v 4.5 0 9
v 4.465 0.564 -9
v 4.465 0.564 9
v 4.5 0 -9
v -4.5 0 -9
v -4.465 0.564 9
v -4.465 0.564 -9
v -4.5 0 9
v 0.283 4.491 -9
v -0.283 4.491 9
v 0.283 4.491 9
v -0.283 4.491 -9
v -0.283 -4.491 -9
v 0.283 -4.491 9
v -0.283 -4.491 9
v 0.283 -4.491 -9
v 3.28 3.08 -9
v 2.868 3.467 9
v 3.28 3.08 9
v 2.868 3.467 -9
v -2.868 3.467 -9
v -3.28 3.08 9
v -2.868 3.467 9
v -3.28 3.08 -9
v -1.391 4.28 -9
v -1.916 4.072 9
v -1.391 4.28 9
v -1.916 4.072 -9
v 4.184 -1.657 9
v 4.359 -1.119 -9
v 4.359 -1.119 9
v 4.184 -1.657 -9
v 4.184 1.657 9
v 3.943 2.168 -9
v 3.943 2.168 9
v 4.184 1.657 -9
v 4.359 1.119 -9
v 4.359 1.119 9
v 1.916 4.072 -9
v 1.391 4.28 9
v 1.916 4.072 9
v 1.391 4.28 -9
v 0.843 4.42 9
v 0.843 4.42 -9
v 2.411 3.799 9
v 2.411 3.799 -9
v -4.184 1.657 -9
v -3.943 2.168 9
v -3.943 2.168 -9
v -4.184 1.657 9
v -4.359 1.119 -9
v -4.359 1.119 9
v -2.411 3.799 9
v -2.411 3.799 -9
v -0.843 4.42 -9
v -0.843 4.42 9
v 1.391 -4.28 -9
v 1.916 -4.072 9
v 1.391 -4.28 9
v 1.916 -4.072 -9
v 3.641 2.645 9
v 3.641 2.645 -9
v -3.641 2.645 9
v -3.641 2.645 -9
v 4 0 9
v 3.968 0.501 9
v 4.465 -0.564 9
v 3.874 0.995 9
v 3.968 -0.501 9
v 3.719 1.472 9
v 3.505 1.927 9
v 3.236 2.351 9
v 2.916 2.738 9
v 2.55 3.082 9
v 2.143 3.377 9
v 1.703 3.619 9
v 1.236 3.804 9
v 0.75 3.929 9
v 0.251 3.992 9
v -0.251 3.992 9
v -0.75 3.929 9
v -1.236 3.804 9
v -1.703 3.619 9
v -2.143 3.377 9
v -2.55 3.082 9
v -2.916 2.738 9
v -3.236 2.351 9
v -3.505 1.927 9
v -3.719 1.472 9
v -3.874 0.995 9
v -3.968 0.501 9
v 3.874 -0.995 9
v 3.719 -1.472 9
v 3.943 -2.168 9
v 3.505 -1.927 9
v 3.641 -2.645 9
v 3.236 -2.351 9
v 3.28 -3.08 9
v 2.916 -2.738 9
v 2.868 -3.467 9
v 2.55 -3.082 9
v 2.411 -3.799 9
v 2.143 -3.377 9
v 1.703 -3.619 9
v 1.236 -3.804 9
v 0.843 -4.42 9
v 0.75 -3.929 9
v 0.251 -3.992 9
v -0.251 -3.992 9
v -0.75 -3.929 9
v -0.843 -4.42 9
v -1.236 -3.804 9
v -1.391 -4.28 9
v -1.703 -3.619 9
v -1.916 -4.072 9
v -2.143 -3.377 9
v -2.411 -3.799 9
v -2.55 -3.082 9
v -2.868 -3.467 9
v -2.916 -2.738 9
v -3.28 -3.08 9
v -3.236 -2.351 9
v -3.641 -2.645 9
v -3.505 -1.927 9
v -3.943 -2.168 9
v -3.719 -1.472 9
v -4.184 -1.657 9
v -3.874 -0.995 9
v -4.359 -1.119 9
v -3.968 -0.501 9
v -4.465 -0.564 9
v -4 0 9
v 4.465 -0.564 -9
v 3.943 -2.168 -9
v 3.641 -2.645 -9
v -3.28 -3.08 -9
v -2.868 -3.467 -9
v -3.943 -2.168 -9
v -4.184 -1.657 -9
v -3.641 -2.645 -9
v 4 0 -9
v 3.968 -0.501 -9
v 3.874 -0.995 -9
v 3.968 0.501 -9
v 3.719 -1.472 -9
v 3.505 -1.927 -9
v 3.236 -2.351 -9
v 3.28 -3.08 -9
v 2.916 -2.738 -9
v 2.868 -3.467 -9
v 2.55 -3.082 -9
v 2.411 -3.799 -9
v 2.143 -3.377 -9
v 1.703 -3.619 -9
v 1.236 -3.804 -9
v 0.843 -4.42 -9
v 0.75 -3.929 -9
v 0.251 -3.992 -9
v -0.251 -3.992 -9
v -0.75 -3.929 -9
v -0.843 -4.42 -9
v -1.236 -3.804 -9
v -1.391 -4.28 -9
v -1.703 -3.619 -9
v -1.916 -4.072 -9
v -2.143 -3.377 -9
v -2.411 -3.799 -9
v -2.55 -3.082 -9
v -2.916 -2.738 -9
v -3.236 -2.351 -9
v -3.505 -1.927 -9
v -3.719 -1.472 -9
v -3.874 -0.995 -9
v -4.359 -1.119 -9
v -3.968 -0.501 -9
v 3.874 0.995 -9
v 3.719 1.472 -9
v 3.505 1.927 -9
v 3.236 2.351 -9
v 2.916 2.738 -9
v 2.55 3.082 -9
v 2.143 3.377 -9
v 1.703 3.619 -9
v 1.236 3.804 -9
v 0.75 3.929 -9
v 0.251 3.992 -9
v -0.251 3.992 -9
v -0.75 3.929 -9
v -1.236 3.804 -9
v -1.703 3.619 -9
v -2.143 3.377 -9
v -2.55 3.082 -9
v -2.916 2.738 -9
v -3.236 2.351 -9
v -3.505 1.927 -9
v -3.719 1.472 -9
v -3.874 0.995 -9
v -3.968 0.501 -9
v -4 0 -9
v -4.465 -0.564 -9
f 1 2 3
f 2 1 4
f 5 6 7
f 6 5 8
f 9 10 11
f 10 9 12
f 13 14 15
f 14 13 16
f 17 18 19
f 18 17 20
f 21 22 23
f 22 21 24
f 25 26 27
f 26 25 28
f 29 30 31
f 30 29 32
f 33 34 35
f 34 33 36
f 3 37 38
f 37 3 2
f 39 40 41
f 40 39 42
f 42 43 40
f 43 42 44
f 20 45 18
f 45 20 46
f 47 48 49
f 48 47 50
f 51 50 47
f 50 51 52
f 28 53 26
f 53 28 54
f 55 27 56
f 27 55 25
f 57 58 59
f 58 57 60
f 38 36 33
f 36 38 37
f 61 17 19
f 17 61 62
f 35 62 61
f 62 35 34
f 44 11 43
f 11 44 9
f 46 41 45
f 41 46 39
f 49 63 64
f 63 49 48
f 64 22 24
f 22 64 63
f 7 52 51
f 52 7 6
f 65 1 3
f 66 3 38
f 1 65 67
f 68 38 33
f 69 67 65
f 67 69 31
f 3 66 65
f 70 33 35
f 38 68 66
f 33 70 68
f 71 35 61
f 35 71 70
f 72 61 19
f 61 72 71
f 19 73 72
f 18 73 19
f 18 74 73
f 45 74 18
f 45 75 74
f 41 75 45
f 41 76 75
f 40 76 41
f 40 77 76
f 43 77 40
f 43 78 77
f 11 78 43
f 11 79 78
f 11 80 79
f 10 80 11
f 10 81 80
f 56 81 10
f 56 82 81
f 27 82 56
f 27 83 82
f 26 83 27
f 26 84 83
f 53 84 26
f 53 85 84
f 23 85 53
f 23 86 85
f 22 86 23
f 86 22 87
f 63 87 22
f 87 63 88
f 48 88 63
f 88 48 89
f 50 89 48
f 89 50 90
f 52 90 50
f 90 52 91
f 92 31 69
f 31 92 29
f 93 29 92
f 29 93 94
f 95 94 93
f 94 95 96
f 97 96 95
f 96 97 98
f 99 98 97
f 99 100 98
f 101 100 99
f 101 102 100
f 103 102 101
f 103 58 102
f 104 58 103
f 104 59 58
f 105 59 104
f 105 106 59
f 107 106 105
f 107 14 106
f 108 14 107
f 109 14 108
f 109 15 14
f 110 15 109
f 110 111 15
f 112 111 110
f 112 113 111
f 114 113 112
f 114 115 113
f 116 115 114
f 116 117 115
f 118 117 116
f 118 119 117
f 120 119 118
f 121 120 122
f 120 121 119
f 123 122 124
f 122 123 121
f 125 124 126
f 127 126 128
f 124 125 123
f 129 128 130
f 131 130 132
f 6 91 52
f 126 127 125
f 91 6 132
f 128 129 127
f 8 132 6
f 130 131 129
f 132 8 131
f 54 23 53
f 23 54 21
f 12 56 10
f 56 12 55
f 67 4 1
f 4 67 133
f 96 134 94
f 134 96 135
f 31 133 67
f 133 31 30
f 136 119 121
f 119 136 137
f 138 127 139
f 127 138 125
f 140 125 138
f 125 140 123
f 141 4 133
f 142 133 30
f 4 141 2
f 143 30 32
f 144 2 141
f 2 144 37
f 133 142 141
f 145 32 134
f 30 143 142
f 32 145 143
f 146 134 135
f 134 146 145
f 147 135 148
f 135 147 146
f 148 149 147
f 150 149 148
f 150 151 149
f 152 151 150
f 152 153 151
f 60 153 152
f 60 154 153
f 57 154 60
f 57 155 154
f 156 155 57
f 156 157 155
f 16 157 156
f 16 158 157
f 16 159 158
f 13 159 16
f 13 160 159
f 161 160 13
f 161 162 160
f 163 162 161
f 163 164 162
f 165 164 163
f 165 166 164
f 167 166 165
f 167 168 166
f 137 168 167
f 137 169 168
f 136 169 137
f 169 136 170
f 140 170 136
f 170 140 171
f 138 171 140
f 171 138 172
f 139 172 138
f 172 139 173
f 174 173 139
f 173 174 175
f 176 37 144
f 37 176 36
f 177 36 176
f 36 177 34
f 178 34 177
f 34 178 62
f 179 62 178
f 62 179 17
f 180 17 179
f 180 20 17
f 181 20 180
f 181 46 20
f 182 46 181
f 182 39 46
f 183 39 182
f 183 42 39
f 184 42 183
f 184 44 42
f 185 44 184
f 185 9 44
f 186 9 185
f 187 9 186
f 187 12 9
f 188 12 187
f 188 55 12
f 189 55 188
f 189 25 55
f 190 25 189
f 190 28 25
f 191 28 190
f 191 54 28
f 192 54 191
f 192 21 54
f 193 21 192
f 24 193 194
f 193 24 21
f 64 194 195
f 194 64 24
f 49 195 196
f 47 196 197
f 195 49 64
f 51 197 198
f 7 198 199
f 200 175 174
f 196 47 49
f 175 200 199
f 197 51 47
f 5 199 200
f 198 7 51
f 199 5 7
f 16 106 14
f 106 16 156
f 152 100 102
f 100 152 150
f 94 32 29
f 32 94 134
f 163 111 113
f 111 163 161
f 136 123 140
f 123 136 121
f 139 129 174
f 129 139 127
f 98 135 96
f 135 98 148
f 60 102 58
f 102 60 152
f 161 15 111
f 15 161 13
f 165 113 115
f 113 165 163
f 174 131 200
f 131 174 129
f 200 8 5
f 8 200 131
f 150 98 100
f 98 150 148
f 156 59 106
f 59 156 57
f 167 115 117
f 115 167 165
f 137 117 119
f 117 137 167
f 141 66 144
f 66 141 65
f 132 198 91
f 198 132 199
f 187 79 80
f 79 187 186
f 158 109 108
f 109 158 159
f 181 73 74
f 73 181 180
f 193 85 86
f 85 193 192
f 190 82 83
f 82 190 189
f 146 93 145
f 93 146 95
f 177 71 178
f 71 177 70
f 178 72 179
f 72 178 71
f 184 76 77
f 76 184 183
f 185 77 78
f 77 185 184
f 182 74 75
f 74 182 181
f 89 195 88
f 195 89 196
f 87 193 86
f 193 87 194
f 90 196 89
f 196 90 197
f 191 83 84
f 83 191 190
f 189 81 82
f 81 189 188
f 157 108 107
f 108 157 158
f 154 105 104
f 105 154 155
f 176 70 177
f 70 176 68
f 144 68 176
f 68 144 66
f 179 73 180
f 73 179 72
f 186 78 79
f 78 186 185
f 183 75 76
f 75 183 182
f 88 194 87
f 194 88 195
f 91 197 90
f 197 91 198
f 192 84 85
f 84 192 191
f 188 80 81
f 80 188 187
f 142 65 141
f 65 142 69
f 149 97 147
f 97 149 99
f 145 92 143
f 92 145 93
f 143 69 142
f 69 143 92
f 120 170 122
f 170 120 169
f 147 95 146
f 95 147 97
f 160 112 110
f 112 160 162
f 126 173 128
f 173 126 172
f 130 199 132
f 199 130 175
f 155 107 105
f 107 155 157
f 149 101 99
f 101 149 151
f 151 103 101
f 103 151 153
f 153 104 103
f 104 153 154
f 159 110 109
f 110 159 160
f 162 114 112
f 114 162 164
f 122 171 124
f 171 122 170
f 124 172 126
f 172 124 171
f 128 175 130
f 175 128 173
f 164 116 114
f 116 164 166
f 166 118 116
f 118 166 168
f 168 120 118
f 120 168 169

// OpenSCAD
$fn = 50;


difference() {
	union() {
		translate(v = [0, 0, -9.0000000000]) {
			cylinder(h = 18, r = 4.5000000000);
		}
	}
	union() {
		translate(v = [0, 0, -100.0000000000]) {
			cylinder(h = 200, r = 4);
		}
	}
}
